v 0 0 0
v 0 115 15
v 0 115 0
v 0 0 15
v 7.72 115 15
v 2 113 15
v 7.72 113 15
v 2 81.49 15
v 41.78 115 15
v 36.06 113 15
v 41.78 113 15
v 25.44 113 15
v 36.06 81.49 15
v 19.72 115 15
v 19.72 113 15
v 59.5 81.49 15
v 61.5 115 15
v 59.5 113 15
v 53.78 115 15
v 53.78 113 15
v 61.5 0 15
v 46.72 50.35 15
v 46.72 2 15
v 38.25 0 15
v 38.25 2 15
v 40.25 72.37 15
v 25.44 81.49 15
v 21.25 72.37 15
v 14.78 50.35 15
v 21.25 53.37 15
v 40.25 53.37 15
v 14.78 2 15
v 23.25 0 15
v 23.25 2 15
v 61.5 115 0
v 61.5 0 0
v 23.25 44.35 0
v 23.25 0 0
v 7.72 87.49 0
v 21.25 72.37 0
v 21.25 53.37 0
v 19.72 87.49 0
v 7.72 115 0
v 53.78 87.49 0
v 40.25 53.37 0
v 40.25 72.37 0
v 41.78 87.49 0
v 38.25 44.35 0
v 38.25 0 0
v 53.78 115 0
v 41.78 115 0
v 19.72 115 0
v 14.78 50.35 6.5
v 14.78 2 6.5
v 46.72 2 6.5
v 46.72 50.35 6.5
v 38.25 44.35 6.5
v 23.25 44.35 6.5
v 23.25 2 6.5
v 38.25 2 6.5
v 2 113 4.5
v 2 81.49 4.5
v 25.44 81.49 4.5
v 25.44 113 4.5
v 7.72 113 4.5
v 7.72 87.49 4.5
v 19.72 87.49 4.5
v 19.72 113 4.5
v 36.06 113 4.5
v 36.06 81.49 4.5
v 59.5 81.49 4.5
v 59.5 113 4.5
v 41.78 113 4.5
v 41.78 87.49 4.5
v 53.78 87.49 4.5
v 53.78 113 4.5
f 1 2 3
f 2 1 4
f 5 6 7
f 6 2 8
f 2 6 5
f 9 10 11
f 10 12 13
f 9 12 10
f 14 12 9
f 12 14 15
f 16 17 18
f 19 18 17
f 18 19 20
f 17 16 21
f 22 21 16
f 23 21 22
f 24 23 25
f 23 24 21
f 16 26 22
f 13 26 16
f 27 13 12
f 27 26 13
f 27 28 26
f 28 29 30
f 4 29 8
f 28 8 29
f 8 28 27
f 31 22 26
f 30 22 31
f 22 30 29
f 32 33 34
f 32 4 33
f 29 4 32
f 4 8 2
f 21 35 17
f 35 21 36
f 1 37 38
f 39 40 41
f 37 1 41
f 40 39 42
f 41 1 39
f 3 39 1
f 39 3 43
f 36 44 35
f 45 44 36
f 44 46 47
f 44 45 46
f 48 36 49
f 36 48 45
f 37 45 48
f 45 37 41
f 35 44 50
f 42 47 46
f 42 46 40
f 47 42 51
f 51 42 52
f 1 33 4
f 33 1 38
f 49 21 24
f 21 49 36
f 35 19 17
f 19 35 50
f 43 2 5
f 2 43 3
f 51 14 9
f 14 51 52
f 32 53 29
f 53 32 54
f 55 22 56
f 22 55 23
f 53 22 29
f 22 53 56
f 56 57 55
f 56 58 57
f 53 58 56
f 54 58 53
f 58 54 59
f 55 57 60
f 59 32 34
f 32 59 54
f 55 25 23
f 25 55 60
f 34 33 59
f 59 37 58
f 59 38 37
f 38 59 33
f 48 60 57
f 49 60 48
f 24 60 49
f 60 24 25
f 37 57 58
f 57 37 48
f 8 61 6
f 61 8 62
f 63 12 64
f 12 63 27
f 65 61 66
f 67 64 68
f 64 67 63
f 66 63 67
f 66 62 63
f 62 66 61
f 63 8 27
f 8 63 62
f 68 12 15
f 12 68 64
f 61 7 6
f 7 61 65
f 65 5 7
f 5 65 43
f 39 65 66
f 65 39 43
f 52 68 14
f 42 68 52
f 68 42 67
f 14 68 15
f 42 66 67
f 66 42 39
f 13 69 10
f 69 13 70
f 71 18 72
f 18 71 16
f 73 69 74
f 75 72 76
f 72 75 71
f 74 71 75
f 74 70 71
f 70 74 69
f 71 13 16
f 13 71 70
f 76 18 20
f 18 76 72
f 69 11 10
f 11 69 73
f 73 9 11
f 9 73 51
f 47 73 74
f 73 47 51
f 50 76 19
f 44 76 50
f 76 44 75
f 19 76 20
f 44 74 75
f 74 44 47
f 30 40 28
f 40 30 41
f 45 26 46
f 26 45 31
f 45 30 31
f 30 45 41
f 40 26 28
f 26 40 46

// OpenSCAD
length = 61.5;
width = 115;
height = 15;

//Based on magnet size:
magnetBaseInnerDiameter = 19;
magnetHeight = 4.0;

//inox shaman x 6, 47.35 x 30.94, base 26.84
//vermling shaman (2 stacks of 5), 30.51 x 22.44, base 20.9
//single token 2.0
magnetOffset = 49.37;
largeTokenWidth = 47.35 + 1;
largeTokenLength = 30.94 + 1;
largeTokenHeight = 8 + .5;
largeTokenSquareLipWidthRemainder = largeTokenLength - 15;
largeTokenSquareLipLengthRemainder = 4;

smallToken1Width = 30.51 + 1;
smallToken1Length = 22.44 + 1;
smallToken1Height = 10 + .5;
smallToken1SquareLipWidthRemainder = smallToken1Length - 12;
smallToken1SquareLipLengthRemainder = 4;

smallToken2Width = 30.51 + 1;
smallToken2Length = 22.44 + 1;
smallToken2Height = 10 + .5;
smallToken2SquareLipWidthRemainder = smallToken2Length - 12;
smallToken2SquareLipLengthRemainder = 4;

spaceBetweenCircles = 2;
wallThickness = spaceBetweenCircles;



difference(){
    cube([length, width, height]);


//----------------------------------
translate(
        [
            length/2 - largeTokenLength/2,
            wallThickness,
            height - largeTokenHeight
        ])
        cube([largeTokenLength,largeTokenWidth, largeTokenHeight]);
    translate([
        length/2 - (largeTokenLength - largeTokenSquareLipWidthRemainder)/2,
        0,
        0])
        cube([
            largeTokenLength - largeTokenSquareLipWidthRemainder,
            largeTokenWidth - largeTokenSquareLipLengthRemainder,
            height]);

            
//---------------------------------------------------------------------
    
    translate(
        [
            wallThickness,
            width - (wallThickness + smallToken1Width),
            height - smallToken1Height
        ])
        cube([smallToken1Length,smallToken1Width, smallToken1Height]);
    translate([
        wallThickness + smallToken1SquareLipWidthRemainder/2,
        width - (smallToken1Width - smallToken1SquareLipLengthRemainder),
        0])
        cube([
            smallToken1Length - smallToken1SquareLipWidthRemainder,
            smallToken1Width - smallToken1SquareLipLengthRemainder,
            height]);

    translate(
        [
            length - (wallThickness + smallToken2Length),
            width - (wallThickness + smallToken2Width),
            height - smallToken2Height
        ])
        cube([smallToken2Length,smallToken2Width, smallToken2Height]);
    translate([
        length - (wallThickness + smallToken2Length) + smallToken2SquareLipWidthRemainder/2,
        width - (smallToken2Width - smallToken2SquareLipLengthRemainder),
        0])
        cube([
            smallToken2Length - smallToken2SquareLipWidthRemainder,
            smallToken2Width - smallToken2SquareLipLengthRemainder,
            height]);       

//----------------------------------------
   
    translate([length/2 - magnetBaseInnerDiameter/2, magnetOffset + wallThickness * 2, 0])
        cube([magnetBaseInnerDiameter, magnetBaseInnerDiameter, height]);
        

}
